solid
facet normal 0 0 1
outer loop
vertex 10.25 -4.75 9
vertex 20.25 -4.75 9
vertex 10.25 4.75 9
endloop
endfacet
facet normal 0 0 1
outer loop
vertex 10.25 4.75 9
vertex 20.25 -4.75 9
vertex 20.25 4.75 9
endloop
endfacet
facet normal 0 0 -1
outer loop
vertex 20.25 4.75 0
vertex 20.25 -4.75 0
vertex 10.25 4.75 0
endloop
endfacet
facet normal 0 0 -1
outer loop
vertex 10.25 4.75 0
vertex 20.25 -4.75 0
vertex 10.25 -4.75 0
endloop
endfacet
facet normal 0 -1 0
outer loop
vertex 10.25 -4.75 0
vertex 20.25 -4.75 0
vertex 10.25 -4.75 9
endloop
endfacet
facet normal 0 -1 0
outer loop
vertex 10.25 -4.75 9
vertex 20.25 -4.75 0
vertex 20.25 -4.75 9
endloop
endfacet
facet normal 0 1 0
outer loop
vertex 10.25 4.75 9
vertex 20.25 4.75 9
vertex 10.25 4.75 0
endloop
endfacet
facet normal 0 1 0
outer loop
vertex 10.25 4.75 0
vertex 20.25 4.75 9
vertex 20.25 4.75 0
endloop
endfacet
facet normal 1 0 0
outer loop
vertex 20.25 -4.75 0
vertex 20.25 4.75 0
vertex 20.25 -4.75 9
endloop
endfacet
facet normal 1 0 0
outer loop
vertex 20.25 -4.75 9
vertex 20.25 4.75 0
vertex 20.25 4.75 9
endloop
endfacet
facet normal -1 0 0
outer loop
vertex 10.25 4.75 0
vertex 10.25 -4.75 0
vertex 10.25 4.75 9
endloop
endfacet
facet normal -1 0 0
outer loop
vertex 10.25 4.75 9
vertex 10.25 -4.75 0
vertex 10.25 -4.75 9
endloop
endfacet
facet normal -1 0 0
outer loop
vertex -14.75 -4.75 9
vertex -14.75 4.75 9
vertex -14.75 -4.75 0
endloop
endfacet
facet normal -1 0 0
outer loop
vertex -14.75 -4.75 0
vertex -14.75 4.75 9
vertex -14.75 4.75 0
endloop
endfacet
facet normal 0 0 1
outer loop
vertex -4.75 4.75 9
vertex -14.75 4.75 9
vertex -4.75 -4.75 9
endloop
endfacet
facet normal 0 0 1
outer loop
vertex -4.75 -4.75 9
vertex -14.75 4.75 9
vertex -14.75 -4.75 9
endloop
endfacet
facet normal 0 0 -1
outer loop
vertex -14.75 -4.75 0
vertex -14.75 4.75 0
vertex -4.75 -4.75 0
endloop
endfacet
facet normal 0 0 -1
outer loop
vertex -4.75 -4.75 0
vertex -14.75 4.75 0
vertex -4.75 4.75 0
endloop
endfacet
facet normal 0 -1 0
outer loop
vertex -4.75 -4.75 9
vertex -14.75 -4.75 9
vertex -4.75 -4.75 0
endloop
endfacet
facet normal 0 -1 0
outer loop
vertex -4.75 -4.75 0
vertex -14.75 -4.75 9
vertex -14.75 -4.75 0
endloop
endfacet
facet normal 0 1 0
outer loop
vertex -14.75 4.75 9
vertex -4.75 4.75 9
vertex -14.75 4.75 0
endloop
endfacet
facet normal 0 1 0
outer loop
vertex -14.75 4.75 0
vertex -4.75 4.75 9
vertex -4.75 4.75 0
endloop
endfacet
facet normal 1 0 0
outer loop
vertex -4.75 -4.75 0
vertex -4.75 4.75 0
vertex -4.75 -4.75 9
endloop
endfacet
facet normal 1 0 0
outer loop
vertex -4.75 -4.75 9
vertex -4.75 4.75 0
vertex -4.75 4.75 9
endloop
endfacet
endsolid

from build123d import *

# Parameters (mm, degrees)
BOSS_EXTRUDE2_DEPTH = 9
SKETCH2_W           = 10
SKETCH2_H           = 9.5
BOSS_EXTRUDE3_DEPTH = 9
SKETCH3_W           = 15
SKETCH3_H           = 36.865736843
CUT_EXTRUDE2_DEPTH  = 9


with BuildPart() as part:
    # Sketch1 → Boss-Extrude2 (new body)
    with BuildSketch(Plane.XY):
        Polygon((-4.75, -14.75), (4.75, -14.75), (4.75, -4.75), (14.75, -4.75), (14.75, 4.75), (4.75, 4.75), (4.75, 14.75), (-4.75, 14.75), (-4.75, 4.75), (-14.75, 4.75), (-14.75, -4.75), (-4.75, -4.75), align=None)
    extrude(amount=BOSS_EXTRUDE2_DEPTH)

    # Sketch2 → Boss-Extrude3 (add)
    with BuildSketch(Plane.XY.offset(9)):
        with Locations((15.25, 0)):
            Rectangle(SKETCH2_W, SKETCH2_H)
    extrude(amount=-BOSS_EXTRUDE3_DEPTH)

    # Sketch3 → Cut-Extrude2 (cut)
    with BuildSketch(Plane.XY.offset(9)):
        with Locations((2.75, 3.682868421)):
            Rectangle(SKETCH3_W, SKETCH3_H)
    extrude(amount=-CUT_EXTRUDE2_DEPTH, mode=Mode.SUBTRACT)


with BuildPart() as cut_extrude2_piece_1:
    # of the separate pieces the step leaves, piece 1, a body of its own (cut_extrude2_pieces)
    add(part.part.solids().sort_by_distance((-14.75, -4.75, 0))[0])


with BuildPart() as cut_extrude2_piece_2:
    # of the separate pieces the step leaves, piece 2, a body of its own (cut_extrude2_pieces)
    add(part.part.solids().sort_by_distance((10.25, -4.75, 0))[0])


solid = Compound([cut_extrude2_piece_1.part, cut_extrude2_piece_2.part])
